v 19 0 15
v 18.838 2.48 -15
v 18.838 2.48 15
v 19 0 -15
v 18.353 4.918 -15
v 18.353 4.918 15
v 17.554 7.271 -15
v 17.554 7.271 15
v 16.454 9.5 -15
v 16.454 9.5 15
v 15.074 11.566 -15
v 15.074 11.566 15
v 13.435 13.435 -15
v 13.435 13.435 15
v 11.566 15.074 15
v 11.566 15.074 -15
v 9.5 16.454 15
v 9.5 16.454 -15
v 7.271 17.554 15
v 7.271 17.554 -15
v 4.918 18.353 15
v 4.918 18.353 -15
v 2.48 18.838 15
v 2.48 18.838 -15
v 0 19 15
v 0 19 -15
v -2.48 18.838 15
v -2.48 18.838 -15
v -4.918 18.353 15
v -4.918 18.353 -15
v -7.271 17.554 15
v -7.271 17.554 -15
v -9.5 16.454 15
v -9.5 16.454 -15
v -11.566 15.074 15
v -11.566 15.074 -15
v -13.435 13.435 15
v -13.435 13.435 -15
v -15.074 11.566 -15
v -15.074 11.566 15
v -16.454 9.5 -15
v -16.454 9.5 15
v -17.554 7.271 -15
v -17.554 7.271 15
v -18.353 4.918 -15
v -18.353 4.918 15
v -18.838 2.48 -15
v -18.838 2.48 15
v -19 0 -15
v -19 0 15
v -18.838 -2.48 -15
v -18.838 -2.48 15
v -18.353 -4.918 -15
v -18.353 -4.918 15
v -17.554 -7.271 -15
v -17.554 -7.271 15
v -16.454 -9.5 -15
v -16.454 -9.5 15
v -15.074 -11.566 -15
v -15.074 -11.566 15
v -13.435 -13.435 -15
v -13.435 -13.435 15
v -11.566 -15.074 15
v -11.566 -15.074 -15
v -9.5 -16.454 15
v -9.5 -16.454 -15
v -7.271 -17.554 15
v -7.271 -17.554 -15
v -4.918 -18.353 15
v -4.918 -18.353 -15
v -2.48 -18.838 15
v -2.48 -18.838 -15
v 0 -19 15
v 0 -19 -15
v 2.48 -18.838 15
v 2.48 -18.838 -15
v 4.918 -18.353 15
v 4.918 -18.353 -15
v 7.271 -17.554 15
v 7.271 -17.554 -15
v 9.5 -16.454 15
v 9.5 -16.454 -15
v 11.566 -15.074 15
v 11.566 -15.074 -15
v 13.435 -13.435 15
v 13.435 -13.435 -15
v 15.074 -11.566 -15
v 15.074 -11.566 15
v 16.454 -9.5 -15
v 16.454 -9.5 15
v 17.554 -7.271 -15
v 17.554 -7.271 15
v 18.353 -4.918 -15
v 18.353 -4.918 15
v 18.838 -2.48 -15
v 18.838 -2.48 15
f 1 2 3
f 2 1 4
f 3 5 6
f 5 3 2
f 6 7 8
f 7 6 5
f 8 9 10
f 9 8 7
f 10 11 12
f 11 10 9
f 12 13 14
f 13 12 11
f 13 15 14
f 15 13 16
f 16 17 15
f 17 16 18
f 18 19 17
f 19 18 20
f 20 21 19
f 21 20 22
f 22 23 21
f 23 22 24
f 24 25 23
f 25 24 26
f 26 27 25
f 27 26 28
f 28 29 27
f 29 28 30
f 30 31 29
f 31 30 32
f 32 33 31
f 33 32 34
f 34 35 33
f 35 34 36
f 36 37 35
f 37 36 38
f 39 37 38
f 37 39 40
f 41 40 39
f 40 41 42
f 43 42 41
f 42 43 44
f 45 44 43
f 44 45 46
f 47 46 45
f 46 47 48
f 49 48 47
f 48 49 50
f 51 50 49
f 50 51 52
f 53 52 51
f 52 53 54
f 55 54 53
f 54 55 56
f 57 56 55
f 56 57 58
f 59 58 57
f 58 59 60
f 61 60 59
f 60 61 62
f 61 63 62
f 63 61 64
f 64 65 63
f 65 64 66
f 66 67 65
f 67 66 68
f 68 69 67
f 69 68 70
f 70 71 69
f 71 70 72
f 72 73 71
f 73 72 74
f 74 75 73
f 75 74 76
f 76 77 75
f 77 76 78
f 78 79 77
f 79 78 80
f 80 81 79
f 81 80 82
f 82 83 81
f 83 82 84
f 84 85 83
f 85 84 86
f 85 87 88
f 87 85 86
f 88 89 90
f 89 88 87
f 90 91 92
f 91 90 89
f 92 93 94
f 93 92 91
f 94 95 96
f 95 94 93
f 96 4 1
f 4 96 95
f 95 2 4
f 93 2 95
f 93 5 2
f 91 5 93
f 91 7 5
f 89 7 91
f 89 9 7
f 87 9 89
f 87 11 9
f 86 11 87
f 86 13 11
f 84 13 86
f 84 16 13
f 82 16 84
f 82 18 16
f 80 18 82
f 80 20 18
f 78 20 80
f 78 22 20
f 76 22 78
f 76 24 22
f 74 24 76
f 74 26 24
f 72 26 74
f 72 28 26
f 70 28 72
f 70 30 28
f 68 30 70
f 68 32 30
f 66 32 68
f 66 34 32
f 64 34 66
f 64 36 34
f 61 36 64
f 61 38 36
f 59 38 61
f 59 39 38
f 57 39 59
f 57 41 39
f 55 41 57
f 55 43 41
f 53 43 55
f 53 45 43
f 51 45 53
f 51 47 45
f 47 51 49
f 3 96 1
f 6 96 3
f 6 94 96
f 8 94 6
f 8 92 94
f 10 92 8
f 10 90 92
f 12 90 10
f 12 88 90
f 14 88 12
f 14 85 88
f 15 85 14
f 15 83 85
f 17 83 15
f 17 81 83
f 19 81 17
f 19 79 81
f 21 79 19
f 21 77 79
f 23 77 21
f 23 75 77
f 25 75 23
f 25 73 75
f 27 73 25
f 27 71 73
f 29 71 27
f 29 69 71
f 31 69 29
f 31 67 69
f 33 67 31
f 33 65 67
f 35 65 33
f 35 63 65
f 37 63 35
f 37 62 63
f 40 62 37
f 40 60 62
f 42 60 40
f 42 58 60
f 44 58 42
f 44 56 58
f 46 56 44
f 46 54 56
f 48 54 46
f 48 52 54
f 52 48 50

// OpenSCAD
// ========================================
// a cylinder with radius 19 mm and height 30 mm
// NeuroCAD canonical IR; dimensions are millimetres
// ========================================
$fn = 48;

cylinder(r=19, h=30, center=true);
